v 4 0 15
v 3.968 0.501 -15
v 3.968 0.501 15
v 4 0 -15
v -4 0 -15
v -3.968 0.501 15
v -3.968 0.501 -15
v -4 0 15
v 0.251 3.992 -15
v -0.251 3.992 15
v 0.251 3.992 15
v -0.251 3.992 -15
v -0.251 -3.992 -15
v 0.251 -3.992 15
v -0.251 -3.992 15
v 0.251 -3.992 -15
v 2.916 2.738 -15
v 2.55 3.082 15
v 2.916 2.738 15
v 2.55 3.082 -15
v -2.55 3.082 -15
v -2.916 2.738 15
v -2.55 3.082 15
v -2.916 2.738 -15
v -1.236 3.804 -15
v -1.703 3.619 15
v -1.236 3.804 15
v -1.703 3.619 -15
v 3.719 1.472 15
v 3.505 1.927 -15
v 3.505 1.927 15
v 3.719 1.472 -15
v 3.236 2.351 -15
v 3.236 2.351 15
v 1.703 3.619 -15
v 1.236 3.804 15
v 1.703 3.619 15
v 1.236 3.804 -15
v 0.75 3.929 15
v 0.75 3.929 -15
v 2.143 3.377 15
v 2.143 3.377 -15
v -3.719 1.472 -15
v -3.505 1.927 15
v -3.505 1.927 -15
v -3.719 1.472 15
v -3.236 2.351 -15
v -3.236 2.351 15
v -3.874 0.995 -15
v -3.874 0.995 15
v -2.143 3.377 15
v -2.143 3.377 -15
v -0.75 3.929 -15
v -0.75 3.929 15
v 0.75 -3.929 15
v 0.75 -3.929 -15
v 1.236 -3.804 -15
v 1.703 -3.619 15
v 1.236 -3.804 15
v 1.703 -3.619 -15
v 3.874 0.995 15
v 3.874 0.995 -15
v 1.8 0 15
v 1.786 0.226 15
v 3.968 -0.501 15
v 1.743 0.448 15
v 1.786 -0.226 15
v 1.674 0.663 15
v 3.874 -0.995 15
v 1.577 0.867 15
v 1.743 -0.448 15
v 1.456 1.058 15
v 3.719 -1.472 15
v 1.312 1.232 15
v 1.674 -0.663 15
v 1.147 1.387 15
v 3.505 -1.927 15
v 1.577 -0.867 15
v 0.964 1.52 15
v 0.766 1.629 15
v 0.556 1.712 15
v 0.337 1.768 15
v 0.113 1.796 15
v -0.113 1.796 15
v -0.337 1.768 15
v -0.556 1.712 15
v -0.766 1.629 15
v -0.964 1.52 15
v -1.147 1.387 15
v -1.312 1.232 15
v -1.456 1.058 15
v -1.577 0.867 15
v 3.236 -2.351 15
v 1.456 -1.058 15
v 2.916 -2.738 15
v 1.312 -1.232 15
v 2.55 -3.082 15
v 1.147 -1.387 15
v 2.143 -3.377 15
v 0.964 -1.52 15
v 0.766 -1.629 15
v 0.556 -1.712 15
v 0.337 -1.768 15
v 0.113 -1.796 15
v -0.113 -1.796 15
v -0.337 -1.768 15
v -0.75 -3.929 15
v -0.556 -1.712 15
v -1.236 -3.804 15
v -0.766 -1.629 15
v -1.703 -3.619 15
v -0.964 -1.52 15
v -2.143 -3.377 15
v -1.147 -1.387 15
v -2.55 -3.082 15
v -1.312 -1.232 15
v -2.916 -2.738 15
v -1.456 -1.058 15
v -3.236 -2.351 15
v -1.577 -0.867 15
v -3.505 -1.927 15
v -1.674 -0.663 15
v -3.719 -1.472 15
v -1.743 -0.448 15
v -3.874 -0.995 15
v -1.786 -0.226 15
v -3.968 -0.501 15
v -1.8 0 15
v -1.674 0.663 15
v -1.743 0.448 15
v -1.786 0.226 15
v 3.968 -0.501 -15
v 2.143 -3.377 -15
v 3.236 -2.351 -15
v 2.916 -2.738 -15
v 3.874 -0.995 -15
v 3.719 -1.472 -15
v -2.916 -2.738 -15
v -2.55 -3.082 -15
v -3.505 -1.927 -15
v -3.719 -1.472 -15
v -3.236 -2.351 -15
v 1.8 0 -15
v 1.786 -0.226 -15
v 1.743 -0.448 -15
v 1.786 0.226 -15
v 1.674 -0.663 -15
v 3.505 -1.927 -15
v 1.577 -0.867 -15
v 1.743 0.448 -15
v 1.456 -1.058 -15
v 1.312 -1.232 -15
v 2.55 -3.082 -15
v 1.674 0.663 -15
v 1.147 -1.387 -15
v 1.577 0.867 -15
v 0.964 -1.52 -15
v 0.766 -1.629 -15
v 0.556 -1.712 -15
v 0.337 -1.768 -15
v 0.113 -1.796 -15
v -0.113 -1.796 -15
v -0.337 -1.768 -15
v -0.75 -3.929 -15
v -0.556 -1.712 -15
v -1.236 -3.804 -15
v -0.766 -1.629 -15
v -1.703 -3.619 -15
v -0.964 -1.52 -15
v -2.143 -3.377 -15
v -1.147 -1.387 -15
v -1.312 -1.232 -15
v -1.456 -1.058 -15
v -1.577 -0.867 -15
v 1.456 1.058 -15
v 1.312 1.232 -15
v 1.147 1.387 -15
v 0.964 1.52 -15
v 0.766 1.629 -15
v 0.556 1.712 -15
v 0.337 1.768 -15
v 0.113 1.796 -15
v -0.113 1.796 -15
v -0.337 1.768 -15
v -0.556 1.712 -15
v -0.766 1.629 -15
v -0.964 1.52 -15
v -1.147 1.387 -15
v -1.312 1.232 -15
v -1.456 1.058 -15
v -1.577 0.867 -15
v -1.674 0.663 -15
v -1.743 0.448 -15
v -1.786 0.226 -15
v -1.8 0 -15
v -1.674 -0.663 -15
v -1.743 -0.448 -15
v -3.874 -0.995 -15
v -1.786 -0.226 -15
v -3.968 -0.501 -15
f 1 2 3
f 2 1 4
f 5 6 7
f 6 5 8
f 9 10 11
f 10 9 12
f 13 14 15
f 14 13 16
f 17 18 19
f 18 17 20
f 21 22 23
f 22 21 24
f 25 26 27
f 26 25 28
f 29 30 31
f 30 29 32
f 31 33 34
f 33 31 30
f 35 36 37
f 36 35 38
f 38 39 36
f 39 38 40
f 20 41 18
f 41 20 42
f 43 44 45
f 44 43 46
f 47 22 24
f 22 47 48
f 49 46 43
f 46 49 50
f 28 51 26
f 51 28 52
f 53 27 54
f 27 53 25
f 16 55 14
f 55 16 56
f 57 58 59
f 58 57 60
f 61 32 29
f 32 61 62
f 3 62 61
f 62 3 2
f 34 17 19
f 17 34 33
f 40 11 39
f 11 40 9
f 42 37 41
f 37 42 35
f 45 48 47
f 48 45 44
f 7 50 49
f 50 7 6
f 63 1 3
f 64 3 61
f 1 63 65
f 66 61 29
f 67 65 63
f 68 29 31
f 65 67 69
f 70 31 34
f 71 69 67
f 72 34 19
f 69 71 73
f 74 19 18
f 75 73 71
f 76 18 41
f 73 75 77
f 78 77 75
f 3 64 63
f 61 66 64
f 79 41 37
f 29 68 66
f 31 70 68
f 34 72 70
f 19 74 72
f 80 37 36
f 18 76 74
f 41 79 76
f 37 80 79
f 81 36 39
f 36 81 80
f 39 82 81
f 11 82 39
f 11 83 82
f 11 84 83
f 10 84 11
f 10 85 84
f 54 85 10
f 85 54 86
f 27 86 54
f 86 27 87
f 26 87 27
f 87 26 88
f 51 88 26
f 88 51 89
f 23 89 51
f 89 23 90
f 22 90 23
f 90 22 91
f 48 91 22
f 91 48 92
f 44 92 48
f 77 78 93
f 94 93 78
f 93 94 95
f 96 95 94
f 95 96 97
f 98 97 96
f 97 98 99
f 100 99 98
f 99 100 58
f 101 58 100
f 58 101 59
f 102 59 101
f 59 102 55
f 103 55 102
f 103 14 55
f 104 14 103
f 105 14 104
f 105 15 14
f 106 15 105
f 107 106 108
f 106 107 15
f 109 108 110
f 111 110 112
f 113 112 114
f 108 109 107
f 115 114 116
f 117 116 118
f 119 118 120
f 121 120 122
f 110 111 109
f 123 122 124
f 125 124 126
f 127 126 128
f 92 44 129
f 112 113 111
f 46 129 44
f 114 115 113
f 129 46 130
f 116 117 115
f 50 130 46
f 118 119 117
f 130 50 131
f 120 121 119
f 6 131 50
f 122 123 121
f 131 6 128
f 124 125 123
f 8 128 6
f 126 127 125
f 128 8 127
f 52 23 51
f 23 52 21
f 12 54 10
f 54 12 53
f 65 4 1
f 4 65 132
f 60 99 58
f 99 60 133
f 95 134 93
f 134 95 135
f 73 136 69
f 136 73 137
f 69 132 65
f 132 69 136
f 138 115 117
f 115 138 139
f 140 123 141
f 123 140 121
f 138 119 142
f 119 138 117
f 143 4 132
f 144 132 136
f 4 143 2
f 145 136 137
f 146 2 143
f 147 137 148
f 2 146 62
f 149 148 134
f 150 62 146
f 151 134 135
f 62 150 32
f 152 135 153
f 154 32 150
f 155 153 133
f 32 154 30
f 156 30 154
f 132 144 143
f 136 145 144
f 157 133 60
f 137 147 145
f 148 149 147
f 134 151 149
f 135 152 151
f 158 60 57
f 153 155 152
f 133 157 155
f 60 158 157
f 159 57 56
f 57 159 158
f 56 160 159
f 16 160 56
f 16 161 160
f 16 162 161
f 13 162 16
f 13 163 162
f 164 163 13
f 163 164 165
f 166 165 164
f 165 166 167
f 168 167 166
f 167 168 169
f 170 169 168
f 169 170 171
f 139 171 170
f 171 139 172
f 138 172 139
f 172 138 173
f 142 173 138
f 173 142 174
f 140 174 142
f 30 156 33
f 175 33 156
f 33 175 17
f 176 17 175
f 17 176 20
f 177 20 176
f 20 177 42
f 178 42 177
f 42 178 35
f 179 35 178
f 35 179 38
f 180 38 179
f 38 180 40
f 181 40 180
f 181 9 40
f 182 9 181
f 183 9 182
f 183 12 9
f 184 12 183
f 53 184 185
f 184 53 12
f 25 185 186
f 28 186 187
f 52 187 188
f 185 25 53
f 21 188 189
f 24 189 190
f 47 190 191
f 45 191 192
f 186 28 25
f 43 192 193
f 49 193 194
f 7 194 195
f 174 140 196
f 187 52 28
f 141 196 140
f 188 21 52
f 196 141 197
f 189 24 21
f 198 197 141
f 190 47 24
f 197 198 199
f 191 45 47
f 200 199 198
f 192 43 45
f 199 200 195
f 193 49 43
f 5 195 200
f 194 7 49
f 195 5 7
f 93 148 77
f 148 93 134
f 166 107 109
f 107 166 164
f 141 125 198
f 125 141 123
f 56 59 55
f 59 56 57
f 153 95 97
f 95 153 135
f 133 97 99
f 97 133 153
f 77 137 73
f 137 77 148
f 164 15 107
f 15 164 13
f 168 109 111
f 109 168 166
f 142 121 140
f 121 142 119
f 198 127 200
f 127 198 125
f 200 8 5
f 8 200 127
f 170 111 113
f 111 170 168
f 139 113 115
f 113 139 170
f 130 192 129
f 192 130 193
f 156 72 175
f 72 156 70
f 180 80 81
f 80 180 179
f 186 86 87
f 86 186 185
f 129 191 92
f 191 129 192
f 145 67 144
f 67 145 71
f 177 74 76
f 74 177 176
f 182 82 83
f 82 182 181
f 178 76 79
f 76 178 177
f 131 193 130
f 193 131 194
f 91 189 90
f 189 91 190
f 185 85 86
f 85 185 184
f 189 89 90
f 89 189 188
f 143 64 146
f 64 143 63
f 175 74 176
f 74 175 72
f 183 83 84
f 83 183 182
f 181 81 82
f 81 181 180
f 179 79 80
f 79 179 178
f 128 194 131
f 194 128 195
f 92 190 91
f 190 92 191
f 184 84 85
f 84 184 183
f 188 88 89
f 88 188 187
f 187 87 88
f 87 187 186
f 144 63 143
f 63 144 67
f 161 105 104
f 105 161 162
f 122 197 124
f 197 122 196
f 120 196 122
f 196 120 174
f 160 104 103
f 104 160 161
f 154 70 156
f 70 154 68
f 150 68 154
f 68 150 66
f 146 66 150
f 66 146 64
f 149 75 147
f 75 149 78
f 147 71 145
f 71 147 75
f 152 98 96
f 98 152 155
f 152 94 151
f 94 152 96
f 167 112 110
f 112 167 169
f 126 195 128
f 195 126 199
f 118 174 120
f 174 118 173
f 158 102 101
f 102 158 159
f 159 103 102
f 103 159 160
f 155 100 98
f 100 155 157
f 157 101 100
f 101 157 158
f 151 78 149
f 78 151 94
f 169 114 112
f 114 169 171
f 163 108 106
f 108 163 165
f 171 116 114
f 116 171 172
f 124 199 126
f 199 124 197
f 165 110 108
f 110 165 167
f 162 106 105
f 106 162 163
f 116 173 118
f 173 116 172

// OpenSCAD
$fn = 50;


difference() {
	union() {
		translate(v = [0, 0, -15.0000000000]) {
			cylinder(h = 30, r = 4.0000000000);
		}
	}
	union() {
		translate(v = [0, 0, -100.0000000000]) {
			cylinder(h = 200, r = 1.8000000000);
		}
	}
}
